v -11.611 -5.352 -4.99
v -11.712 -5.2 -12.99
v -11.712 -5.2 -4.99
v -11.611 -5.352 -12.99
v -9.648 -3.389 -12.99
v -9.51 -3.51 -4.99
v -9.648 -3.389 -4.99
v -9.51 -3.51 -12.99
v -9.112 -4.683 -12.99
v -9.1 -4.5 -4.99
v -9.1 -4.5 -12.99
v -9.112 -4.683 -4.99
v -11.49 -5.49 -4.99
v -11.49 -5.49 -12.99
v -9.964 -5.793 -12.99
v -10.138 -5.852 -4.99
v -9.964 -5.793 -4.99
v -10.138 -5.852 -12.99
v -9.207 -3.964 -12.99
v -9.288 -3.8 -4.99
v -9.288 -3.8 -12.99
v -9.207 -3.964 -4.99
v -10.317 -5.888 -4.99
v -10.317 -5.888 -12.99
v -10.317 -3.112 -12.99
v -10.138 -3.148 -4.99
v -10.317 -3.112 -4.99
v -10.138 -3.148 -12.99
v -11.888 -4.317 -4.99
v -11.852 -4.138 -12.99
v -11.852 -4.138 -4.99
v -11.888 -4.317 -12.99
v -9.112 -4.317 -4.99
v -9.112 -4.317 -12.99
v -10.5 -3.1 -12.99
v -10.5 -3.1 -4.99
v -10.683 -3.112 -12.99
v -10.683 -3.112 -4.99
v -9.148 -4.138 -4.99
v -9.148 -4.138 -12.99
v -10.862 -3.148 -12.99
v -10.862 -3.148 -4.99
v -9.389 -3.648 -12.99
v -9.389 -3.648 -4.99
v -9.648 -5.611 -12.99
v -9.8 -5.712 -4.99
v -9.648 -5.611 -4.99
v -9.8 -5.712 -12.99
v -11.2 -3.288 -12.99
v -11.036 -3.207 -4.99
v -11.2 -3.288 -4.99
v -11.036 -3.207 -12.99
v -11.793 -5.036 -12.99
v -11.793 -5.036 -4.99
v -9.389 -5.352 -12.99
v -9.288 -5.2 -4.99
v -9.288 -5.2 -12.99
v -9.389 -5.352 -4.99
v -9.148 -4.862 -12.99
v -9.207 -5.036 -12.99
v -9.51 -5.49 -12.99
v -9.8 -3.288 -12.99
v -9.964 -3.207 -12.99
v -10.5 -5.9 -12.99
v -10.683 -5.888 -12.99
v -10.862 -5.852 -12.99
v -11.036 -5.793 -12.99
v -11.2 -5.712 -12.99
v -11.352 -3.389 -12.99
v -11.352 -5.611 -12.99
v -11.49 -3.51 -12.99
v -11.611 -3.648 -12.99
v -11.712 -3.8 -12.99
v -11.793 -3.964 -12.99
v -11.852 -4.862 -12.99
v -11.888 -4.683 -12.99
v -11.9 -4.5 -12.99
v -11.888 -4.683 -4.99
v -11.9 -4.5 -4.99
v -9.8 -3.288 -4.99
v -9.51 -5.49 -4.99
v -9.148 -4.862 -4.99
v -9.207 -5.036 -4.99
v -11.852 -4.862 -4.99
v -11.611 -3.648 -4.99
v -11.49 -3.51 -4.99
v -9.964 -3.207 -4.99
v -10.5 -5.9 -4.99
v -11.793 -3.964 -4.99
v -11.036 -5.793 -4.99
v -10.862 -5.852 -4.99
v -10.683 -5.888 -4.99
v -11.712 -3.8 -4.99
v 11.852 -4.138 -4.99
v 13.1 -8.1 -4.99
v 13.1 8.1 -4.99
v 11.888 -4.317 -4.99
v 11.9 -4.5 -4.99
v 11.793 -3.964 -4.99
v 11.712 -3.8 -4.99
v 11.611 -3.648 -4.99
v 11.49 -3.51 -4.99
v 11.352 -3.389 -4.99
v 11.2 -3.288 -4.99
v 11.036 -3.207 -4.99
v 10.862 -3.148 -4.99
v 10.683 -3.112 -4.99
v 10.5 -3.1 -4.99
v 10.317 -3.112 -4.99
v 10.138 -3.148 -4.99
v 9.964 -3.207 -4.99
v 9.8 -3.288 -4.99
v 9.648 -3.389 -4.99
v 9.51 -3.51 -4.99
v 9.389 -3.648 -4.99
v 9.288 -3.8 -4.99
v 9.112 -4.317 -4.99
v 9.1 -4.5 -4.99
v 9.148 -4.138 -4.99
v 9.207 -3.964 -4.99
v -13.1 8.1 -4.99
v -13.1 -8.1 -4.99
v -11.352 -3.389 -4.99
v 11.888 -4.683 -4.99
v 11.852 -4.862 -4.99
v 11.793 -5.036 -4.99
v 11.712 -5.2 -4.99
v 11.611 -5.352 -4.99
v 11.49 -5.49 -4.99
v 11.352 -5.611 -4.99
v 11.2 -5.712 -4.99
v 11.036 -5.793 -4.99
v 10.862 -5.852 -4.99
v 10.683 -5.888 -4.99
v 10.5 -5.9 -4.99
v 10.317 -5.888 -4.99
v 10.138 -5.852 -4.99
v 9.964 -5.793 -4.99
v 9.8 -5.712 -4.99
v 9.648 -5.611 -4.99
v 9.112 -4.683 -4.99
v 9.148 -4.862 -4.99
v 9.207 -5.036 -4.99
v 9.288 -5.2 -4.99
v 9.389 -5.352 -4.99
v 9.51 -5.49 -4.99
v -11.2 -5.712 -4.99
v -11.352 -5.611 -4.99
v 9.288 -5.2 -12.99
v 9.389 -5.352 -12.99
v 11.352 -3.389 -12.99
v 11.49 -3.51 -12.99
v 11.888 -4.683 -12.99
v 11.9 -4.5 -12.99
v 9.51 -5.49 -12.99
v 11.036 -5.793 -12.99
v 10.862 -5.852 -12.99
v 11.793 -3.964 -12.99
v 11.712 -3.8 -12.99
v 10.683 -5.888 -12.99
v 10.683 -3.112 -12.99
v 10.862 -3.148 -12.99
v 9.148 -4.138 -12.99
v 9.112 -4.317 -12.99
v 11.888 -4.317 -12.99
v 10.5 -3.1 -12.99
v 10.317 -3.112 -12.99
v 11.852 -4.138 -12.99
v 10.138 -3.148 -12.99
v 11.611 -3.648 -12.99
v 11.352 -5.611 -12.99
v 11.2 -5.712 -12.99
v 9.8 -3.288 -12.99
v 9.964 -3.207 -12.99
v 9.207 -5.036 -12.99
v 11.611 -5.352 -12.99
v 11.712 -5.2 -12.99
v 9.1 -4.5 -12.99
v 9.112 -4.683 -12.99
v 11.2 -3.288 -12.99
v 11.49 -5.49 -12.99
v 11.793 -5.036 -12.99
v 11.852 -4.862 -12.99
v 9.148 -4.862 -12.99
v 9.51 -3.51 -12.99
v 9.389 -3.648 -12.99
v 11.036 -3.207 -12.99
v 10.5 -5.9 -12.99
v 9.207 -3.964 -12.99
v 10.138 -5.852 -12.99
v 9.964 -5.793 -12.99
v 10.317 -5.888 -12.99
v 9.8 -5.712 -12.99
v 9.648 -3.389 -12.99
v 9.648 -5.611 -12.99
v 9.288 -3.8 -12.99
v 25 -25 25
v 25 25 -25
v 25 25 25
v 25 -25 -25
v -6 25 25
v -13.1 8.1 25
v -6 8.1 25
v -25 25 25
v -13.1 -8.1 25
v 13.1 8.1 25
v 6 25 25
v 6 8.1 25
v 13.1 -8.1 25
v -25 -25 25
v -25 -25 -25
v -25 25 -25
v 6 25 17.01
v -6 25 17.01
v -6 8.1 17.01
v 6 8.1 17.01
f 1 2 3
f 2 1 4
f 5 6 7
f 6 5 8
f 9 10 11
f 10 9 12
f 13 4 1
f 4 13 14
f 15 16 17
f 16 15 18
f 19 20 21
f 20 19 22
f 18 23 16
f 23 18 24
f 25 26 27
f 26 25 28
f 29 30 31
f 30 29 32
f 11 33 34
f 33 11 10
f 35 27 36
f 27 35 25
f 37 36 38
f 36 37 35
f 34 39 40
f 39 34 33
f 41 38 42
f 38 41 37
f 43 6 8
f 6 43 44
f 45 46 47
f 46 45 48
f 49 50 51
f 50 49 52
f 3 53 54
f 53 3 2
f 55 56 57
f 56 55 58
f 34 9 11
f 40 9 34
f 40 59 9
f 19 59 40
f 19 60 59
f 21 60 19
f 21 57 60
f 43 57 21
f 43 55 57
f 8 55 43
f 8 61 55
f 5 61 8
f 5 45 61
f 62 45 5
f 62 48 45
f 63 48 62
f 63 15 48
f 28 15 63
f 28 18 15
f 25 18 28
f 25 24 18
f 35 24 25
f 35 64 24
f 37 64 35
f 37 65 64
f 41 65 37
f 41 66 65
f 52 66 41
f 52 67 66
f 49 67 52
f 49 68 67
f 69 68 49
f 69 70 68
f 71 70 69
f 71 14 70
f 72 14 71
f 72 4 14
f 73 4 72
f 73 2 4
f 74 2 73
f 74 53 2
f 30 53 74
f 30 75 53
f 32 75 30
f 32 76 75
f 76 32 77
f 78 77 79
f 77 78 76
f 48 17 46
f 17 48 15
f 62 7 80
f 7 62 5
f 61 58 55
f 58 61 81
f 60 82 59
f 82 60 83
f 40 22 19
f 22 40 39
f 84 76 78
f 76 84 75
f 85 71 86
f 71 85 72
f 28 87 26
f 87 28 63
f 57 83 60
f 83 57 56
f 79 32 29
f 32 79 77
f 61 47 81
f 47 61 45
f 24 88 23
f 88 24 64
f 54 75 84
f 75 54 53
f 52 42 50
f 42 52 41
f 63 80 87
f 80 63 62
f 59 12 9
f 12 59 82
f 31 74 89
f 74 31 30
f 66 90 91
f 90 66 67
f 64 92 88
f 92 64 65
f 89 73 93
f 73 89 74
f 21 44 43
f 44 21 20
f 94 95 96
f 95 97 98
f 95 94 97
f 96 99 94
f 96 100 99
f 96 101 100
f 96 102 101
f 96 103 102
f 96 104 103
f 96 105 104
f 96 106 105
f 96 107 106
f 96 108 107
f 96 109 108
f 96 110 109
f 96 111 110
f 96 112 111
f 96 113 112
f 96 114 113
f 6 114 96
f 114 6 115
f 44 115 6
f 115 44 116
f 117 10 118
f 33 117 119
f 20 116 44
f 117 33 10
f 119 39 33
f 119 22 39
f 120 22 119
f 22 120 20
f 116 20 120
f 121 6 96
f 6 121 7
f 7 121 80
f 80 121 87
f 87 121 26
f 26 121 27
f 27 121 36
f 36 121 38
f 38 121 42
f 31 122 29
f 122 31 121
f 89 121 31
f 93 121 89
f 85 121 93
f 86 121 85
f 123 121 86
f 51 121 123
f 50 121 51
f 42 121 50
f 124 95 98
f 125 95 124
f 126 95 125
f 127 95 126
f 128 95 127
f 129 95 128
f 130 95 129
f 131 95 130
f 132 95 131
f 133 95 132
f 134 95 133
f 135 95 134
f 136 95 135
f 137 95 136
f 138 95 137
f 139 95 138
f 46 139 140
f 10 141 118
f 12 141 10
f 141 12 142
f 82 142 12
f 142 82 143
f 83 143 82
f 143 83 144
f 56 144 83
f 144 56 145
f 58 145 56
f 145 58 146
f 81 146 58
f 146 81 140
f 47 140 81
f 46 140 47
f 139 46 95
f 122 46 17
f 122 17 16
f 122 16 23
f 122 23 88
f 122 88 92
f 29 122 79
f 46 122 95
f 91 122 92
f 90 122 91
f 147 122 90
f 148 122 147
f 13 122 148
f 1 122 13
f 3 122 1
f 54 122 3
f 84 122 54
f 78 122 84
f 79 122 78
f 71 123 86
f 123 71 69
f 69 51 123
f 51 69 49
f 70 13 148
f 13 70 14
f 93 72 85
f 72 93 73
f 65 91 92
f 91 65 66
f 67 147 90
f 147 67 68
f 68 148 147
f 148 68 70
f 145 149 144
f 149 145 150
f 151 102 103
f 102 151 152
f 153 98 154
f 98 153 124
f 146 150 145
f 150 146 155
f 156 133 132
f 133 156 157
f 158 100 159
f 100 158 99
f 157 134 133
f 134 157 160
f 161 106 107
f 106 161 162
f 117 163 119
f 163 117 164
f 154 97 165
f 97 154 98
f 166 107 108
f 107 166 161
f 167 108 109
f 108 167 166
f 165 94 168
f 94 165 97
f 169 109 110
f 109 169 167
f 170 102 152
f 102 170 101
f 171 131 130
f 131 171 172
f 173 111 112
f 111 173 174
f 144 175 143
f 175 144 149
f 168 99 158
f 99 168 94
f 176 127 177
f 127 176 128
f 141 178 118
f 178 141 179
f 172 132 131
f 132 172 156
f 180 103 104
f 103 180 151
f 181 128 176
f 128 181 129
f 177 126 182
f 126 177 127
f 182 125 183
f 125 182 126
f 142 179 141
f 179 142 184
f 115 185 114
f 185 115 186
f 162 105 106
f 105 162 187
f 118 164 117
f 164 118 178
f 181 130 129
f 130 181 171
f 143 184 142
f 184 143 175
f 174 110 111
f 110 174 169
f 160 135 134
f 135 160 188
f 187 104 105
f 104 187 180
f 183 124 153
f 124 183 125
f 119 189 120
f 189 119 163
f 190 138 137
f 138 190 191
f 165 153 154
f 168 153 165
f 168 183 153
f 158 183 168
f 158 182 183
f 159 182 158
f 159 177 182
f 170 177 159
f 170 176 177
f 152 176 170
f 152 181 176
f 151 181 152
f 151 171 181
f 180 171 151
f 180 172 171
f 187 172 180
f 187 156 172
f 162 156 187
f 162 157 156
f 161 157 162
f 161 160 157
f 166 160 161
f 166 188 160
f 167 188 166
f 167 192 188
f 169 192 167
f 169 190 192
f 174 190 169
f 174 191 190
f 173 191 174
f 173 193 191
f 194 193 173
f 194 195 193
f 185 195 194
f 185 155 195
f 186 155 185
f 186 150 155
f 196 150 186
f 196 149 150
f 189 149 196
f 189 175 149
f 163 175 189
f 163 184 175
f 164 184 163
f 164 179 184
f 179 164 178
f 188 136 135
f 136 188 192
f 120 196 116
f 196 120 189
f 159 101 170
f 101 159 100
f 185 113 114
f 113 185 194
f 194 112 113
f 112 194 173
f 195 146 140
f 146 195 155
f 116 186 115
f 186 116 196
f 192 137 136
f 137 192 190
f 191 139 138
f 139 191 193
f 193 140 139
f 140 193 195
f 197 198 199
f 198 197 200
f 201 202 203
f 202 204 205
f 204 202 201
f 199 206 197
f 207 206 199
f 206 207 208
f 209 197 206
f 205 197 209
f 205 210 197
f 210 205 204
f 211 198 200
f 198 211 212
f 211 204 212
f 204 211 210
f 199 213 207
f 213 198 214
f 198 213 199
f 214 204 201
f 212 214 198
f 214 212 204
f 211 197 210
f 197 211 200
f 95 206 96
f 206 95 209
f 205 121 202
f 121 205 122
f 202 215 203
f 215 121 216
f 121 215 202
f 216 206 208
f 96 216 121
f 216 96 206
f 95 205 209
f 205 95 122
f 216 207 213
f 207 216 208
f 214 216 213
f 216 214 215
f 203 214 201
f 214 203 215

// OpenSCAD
// calibration_cube.scad
// Six-position calibration cube for an MPU-9250/6500/9255 breakout.
// The sensor bolts into a deep well on the +Z face so that no face
// is obstructed when the cube is rolled onto it.

// ===== COPY THESE FROM YOUR VERIFIED fit_test.scad =====
board_x   = 25.0;    // long edge of the PCB
board_y   = 15.0;    // short edge
hole_dx   = 10.5;    // hole centre, distance from board centre along X
hole_dy   = 4.5;     // hole centre, distance from board centre along Y
fit       = 0.6;     // clearance around the board, per side
hole_dia  = 2.8;     // M3 self-taps into PLA
// =======================================================

cube_size    = 50;
well_depth   = 30;   // swallows the pin header plus dupont housings
hole_depth   = 8;
channel_w    = 12;   // wire exit slot
channel_h    = 8;

$fn = 48;

difference() {
    cube([cube_size, cube_size, cube_size], center = true);

    // sensor well, opening on the +Z face
    translate([0, 0, cube_size/2 - well_depth/2 + 0.01])
        cube([board_x + 2*fit, board_y + 2*fit, well_depth], center = true);

    // two blind self-tapping holes in the well floor
    for (s = [-1, 1])
        translate([s * hole_dx, -hole_dy,
                   cube_size/2 - well_depth - hole_depth/2 + 0.01])
            cylinder(h = hole_depth, d = hole_dia, center = true);

    // wire exit channel through the +Y wall, open at the top edge
    translate([0, cube_size/4, cube_size/2 - channel_h/2 + 0.01])
        cube([channel_w, cube_size/2 + 0.02, channel_h], center = true);
}
